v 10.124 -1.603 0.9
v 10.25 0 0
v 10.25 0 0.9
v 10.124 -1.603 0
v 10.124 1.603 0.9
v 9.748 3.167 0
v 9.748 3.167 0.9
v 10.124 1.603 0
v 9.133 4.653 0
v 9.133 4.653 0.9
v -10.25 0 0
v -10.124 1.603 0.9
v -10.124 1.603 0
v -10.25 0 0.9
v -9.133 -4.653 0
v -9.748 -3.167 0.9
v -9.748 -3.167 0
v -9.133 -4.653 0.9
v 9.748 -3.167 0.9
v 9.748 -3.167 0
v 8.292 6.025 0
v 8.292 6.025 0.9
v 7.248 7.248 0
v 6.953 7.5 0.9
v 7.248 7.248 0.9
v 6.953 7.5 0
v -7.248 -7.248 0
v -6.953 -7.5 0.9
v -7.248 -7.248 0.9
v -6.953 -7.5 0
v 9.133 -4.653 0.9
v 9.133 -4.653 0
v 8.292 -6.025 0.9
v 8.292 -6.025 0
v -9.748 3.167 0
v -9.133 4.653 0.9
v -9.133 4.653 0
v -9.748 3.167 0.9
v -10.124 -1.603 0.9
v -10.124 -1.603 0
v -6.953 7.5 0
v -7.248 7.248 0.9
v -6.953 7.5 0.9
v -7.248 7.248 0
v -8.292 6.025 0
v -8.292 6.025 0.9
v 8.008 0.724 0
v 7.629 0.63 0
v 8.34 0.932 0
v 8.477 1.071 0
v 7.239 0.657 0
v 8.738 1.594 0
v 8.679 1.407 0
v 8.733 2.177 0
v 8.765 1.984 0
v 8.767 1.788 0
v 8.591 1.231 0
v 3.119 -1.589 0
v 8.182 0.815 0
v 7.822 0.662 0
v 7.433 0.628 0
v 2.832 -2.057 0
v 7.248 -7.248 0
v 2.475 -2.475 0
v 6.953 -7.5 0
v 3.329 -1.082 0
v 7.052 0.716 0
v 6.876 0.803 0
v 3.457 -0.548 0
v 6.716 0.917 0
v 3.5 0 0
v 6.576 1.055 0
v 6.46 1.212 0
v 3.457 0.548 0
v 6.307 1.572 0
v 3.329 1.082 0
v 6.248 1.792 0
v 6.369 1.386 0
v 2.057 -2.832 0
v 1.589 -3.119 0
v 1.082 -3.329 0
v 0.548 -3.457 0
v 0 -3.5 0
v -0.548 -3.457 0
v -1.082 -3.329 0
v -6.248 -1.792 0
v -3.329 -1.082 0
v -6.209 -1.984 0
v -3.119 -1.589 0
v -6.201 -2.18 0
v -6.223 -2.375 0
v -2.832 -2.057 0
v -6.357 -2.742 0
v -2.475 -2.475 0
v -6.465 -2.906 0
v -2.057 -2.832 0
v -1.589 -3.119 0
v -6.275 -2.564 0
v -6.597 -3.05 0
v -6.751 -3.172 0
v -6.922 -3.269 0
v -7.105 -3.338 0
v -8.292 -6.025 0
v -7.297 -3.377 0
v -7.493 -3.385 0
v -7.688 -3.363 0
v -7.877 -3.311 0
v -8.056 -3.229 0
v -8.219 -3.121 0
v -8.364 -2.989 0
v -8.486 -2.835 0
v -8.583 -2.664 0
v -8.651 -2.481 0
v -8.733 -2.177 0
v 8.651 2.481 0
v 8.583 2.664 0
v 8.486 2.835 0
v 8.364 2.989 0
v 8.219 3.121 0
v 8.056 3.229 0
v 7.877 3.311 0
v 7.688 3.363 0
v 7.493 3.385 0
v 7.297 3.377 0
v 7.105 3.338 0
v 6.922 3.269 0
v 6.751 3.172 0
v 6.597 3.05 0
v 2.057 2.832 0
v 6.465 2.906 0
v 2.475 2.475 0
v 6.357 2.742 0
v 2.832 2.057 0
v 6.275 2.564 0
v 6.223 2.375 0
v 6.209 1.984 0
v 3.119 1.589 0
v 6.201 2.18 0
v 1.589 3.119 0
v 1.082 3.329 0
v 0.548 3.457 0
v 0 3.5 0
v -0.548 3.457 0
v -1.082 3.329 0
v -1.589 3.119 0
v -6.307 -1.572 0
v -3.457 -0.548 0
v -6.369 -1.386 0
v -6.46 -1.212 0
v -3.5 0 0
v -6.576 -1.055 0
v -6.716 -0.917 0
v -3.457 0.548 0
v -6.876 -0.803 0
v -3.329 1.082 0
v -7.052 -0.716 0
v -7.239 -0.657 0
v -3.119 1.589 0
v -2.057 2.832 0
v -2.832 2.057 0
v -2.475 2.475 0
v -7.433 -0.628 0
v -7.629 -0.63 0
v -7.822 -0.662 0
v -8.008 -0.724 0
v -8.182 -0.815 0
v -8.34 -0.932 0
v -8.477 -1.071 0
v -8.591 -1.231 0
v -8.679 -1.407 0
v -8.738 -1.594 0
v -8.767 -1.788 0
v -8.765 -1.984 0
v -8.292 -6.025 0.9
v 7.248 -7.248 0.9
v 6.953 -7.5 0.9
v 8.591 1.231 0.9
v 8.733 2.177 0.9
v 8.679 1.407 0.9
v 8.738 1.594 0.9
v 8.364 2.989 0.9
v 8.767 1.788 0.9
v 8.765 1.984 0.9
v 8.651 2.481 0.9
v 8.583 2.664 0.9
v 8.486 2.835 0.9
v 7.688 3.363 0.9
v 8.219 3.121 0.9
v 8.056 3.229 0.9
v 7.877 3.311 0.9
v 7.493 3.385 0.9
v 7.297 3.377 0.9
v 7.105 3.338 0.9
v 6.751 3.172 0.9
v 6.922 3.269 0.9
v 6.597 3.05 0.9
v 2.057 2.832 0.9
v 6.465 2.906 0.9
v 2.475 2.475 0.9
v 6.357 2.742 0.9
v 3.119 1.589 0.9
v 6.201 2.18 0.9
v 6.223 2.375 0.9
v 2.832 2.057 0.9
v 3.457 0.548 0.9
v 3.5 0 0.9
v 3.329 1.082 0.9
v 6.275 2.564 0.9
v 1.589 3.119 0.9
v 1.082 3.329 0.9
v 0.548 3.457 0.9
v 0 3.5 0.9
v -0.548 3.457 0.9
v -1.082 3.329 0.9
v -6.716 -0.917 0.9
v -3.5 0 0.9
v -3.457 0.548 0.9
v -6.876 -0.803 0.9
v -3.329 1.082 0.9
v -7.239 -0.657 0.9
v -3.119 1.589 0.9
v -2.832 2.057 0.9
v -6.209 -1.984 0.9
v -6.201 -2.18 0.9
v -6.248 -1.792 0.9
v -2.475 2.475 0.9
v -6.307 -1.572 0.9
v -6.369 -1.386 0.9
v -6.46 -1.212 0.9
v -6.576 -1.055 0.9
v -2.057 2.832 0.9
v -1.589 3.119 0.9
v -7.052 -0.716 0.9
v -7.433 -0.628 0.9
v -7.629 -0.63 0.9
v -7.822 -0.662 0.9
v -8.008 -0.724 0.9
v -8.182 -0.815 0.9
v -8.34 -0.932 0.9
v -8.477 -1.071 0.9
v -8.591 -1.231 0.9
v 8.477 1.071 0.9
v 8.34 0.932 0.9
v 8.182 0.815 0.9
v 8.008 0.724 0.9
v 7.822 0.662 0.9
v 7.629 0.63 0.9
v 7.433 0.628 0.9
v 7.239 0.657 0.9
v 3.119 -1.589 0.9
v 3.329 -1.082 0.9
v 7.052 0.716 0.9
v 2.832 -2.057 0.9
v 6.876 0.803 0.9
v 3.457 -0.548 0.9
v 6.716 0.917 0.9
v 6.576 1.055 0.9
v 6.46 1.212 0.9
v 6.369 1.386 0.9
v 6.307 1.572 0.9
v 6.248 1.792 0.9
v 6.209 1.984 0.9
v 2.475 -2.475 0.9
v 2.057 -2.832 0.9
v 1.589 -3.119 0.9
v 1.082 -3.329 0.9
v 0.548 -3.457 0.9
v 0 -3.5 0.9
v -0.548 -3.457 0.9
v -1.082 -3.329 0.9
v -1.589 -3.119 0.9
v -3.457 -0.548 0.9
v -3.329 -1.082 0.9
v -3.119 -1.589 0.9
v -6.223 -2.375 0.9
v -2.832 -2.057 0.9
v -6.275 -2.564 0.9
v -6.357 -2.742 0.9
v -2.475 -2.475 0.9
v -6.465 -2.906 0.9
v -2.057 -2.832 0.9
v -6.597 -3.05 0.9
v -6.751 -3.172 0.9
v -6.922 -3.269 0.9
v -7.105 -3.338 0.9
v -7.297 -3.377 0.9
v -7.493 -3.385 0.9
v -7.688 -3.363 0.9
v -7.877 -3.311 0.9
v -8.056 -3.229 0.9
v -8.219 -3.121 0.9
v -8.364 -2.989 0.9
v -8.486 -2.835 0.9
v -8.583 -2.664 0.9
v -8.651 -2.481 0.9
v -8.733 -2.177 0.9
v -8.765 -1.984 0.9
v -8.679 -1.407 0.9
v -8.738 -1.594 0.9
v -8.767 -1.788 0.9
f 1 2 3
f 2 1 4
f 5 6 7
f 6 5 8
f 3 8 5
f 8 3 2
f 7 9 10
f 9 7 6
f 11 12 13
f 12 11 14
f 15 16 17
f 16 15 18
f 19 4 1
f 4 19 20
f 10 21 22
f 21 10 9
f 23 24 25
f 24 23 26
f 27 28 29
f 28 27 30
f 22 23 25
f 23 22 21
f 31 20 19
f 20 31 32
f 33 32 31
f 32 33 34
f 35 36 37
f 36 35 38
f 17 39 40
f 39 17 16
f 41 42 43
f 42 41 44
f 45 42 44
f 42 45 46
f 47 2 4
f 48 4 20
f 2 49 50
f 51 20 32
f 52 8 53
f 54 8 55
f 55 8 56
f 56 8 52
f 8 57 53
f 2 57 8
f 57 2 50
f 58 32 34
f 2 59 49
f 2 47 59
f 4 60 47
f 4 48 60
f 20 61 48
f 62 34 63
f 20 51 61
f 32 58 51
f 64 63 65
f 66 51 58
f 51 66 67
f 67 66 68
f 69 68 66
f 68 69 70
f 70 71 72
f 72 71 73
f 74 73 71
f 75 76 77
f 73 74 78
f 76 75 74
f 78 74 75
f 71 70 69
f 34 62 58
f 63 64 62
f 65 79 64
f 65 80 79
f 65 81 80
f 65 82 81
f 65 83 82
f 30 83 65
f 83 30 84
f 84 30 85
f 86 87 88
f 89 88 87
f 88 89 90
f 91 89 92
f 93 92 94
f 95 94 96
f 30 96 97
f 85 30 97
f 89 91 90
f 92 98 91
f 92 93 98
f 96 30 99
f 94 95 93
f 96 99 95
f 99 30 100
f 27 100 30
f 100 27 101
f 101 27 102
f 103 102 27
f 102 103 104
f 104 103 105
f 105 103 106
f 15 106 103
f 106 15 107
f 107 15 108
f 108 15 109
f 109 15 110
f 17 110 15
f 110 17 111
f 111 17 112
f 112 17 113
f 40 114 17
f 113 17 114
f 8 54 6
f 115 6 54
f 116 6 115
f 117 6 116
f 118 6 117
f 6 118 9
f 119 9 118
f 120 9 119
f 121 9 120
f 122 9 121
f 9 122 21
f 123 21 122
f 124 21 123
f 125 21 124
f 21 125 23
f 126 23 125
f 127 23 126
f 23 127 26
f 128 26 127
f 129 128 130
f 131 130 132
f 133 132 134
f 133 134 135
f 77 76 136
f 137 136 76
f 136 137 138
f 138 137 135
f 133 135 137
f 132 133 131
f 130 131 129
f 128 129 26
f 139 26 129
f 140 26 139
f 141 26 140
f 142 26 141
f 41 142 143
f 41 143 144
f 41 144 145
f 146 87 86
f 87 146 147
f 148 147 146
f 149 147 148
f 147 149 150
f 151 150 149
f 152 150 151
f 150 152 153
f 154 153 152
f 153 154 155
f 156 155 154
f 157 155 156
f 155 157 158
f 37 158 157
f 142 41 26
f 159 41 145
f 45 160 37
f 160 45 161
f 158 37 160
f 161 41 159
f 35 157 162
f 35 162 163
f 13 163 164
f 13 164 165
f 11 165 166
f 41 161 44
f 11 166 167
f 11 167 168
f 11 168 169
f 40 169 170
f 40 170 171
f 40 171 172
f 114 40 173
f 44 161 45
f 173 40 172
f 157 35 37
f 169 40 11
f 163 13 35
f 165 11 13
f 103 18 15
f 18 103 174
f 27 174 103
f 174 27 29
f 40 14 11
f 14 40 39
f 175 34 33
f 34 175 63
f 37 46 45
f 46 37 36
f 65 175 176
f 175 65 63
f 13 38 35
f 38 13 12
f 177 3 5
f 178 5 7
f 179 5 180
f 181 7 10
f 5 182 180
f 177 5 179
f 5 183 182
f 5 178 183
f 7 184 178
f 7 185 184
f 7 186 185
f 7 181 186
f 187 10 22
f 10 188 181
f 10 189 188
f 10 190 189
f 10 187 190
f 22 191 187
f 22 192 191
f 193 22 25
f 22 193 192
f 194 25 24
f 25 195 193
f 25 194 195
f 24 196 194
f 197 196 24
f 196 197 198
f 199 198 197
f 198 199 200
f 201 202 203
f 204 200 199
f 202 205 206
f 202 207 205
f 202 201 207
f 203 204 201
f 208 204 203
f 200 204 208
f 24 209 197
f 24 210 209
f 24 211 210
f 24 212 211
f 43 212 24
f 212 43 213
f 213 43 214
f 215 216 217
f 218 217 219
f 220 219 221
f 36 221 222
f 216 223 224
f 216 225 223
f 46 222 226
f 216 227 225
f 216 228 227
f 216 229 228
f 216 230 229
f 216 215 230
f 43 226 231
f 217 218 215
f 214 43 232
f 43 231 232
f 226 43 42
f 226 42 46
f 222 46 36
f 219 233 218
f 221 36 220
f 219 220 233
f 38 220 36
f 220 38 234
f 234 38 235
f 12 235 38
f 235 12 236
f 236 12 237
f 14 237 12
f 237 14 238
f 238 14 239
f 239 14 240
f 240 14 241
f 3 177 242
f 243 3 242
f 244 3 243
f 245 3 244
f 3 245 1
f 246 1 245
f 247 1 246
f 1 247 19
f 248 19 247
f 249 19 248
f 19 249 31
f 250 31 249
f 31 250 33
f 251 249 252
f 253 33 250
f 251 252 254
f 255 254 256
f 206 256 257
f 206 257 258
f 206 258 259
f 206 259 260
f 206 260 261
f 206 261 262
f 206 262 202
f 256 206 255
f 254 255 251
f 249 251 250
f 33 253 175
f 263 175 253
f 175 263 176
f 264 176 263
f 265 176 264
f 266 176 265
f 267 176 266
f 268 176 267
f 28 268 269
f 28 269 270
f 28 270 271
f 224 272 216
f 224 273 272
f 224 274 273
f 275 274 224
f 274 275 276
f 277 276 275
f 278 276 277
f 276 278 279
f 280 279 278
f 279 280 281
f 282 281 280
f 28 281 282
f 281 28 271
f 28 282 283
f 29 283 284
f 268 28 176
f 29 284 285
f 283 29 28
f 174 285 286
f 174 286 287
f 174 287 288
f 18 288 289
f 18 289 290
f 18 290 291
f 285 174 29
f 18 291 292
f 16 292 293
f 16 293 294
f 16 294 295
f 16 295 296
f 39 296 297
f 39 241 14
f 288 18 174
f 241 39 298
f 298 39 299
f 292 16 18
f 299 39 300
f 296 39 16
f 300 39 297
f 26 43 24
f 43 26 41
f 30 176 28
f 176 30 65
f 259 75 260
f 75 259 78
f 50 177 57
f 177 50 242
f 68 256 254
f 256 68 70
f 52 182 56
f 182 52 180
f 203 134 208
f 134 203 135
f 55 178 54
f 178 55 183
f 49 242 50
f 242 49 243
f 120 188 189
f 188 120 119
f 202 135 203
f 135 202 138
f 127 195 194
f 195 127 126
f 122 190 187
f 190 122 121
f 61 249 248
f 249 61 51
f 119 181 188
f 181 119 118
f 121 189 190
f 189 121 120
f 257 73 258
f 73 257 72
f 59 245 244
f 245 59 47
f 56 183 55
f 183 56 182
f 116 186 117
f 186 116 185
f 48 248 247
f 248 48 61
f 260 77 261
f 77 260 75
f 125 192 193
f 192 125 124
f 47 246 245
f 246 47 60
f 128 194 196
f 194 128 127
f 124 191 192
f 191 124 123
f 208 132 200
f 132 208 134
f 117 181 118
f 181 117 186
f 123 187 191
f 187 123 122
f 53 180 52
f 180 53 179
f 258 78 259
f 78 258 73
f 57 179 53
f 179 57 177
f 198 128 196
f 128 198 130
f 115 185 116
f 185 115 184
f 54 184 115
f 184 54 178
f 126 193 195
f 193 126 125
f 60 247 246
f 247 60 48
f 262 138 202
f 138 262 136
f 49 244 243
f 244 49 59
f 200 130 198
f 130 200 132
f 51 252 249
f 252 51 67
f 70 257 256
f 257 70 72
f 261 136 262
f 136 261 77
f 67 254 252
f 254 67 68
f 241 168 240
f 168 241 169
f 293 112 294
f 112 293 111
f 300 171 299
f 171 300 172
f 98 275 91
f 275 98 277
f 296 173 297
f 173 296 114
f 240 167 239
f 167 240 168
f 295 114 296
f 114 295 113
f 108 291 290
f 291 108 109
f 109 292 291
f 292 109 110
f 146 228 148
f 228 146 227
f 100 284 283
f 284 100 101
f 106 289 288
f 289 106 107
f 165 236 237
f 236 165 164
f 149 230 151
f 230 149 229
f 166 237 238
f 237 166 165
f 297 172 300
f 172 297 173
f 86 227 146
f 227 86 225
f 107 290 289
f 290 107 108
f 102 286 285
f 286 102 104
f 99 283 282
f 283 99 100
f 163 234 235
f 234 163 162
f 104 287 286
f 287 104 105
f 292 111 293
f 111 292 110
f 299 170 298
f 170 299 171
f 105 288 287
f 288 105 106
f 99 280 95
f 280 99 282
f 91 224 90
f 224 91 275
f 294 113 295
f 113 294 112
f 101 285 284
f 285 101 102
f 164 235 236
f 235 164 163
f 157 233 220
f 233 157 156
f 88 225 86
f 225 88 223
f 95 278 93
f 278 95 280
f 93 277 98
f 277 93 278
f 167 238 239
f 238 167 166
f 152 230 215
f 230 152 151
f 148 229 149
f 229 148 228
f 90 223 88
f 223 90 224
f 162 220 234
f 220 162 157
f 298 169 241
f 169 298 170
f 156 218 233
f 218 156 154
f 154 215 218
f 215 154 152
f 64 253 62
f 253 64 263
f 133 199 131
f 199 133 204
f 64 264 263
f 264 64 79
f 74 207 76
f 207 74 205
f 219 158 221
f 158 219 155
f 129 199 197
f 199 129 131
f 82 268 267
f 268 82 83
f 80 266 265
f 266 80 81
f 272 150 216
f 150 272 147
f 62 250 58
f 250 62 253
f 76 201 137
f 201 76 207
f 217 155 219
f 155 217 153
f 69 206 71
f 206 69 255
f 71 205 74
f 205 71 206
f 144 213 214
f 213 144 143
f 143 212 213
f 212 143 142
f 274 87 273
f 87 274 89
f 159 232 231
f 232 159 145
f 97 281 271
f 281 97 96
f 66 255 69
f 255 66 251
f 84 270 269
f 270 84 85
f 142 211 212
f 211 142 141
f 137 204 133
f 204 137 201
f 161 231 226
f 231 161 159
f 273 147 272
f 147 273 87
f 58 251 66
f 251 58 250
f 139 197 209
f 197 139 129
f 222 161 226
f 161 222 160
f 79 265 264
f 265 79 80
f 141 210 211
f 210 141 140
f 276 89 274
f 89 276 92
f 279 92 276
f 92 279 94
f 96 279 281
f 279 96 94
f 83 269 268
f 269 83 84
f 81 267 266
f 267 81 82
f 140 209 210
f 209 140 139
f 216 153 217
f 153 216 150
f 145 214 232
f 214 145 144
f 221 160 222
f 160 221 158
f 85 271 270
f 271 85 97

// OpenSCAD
difference() {
   intersection() {
      cylinder($fn=40,d=20.5,h=1);
      translate([-22/2,-15/2,-0.1]) cube([22,15,1]);
   }

   translate([0,0,-0.1]) cylinder($fn=40,d=7,h=1.2); // center
   for (i=[0:1]) rotate([0,0,180*i]) hull() {
      rotate([0,0,14]) translate([15.5/2,0,-0.1]) cylinder($fn=40,d=2.5,h=1.2); // center
      rotate([0,0,16]) translate([15.5/2,0,-0.1]) cylinder($fn=40,d=2.5,h=1.2); // center
   }
}
